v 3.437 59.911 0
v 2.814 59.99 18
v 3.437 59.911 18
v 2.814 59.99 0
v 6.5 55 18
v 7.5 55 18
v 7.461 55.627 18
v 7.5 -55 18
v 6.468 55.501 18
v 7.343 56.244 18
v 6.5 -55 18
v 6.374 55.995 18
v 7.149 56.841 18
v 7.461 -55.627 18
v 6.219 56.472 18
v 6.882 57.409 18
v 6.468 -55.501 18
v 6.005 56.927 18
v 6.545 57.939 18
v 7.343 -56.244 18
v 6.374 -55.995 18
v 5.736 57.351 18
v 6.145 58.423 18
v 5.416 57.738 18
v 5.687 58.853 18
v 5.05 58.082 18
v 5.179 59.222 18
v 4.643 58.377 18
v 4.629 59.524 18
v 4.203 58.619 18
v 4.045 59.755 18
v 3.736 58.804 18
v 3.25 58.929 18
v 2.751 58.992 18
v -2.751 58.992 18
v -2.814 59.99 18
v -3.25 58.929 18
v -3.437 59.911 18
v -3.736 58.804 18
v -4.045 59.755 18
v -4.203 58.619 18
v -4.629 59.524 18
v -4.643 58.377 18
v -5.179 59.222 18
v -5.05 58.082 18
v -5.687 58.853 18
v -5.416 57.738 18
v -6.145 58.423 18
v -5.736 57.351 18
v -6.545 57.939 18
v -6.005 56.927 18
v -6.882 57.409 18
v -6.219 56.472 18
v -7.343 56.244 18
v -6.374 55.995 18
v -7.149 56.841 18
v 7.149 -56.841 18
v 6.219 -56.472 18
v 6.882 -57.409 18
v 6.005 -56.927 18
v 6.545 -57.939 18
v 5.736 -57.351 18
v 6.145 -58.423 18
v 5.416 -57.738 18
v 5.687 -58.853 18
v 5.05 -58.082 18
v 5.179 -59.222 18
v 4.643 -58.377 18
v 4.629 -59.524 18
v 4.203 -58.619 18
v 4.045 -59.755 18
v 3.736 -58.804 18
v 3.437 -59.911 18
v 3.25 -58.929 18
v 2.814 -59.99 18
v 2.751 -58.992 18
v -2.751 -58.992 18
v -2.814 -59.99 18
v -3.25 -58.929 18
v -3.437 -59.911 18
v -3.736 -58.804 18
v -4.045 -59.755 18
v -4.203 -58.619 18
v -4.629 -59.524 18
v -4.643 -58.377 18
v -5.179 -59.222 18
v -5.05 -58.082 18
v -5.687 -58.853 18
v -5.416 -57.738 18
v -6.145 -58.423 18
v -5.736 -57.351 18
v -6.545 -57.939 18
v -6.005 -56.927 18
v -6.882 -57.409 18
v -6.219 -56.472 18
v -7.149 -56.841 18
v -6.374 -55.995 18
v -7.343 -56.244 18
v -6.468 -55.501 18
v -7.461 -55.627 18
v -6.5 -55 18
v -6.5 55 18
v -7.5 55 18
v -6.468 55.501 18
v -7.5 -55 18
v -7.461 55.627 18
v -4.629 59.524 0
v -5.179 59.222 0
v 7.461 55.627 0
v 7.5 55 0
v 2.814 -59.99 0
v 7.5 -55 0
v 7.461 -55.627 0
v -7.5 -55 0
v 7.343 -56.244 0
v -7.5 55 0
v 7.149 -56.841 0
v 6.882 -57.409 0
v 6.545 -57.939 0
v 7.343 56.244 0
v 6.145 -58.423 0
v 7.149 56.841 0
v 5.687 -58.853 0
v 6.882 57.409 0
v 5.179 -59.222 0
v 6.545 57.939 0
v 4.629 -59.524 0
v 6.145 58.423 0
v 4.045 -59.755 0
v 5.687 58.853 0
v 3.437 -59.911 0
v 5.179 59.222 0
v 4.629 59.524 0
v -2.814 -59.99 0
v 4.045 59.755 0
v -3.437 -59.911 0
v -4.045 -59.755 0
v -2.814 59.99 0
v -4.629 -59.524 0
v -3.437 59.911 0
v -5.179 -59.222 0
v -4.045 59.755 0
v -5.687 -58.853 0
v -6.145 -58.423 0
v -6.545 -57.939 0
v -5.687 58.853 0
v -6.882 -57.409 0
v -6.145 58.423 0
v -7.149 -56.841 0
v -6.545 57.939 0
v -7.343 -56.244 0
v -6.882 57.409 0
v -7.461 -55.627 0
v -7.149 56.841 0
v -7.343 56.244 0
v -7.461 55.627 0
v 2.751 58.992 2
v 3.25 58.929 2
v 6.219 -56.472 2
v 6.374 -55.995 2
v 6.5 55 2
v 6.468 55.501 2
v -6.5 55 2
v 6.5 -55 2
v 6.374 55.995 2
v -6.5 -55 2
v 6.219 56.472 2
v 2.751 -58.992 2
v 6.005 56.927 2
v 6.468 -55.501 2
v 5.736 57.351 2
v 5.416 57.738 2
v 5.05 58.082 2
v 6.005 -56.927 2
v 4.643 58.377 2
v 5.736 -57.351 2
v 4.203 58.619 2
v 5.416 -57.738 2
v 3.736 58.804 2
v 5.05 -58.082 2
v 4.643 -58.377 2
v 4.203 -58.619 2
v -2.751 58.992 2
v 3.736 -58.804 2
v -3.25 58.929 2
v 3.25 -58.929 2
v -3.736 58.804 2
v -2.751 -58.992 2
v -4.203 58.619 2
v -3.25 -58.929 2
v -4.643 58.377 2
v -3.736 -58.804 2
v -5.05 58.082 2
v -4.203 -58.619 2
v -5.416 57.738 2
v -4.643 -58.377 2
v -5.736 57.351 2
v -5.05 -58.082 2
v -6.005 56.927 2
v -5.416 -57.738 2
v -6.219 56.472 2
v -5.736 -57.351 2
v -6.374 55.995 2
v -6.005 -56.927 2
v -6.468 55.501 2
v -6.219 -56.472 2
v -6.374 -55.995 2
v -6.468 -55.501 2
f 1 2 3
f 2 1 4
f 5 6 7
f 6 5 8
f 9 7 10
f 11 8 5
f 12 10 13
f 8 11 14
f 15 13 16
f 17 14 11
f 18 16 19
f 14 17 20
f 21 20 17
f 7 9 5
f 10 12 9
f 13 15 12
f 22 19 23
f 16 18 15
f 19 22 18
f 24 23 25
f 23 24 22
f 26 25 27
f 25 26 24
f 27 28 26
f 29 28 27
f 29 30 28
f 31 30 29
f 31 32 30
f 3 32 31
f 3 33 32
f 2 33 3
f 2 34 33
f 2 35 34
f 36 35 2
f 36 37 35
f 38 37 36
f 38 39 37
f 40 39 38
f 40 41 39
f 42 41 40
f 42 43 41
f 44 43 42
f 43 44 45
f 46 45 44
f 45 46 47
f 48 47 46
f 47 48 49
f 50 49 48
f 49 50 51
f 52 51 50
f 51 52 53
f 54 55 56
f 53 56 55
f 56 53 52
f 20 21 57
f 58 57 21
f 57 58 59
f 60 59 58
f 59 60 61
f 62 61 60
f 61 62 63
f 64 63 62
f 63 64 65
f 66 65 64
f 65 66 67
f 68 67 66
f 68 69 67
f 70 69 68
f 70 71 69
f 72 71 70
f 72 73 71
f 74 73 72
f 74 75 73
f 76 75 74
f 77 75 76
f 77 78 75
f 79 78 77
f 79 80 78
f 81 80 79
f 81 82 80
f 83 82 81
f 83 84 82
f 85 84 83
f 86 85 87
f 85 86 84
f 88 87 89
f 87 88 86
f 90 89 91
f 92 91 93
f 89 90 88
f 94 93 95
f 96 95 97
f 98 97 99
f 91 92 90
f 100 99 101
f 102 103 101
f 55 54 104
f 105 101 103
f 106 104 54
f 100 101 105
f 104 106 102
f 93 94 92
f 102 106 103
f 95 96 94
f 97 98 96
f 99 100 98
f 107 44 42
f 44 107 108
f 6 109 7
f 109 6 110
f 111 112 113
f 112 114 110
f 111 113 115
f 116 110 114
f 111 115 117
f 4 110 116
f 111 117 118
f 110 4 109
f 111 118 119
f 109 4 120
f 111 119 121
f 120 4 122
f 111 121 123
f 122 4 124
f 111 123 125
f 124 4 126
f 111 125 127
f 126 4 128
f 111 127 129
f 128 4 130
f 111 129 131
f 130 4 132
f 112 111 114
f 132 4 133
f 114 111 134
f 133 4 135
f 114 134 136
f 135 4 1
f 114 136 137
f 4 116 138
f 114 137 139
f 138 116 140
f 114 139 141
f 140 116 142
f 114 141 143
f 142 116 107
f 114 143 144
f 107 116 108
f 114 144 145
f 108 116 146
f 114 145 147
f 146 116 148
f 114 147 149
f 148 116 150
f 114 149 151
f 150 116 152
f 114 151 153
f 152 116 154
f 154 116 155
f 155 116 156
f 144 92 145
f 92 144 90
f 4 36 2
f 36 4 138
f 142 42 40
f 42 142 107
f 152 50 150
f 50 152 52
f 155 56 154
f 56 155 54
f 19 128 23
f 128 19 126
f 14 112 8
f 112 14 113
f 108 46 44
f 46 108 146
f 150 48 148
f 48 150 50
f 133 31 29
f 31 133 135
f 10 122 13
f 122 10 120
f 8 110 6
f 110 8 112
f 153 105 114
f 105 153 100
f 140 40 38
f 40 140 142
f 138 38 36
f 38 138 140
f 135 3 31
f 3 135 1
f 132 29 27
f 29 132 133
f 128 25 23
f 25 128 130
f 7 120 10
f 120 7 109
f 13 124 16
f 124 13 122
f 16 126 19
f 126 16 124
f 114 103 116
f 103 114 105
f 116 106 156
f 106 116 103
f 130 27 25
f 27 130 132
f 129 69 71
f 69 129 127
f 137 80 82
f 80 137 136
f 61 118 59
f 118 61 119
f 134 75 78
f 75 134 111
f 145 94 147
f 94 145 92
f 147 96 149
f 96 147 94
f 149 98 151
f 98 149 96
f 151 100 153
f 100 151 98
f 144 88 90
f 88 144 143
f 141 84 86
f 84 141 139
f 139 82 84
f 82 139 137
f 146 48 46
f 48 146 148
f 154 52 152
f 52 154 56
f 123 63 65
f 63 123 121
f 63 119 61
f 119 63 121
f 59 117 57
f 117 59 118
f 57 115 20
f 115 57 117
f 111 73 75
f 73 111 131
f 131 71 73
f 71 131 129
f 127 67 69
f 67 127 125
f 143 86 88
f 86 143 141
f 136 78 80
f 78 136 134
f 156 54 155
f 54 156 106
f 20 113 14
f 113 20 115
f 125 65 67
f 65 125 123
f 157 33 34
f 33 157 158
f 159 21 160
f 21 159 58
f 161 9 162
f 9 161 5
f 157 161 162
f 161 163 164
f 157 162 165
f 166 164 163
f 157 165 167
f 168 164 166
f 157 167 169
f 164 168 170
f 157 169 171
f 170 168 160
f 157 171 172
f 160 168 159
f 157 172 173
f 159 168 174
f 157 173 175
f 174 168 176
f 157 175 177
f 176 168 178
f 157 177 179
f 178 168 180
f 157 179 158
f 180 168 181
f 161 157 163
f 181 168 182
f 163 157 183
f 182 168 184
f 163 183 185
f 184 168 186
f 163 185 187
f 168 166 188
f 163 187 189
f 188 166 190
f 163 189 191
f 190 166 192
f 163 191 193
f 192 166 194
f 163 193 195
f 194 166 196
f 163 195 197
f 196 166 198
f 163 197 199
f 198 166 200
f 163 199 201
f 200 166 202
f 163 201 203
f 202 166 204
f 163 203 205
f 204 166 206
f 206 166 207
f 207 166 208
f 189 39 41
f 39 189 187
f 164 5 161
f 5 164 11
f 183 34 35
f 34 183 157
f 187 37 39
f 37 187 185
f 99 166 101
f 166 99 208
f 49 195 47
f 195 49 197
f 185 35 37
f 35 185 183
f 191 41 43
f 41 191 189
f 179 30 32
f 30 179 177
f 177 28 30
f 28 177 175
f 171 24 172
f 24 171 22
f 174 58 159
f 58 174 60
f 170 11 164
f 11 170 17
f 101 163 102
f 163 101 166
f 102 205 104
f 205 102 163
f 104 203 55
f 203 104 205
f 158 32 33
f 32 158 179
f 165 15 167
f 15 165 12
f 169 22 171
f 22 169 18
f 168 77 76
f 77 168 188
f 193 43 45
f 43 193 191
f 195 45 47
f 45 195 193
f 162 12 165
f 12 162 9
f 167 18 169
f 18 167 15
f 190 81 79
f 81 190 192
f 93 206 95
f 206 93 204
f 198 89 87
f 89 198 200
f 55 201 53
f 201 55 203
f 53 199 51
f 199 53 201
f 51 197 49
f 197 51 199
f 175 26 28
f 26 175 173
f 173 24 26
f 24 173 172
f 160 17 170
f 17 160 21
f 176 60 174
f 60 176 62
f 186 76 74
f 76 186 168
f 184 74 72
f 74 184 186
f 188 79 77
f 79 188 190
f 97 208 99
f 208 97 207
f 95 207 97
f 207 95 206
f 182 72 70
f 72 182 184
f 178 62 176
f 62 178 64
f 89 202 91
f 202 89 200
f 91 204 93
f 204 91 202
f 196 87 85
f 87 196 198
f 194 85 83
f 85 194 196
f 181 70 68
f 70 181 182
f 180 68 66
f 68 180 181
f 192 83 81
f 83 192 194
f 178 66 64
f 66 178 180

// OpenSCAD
$fn = 50;


difference() {
	union() {
		hull() {
			translate(v = [-2.5000000000, 55.0000000000, 0]) {
				cylinder(h = 18, r = 5);
			}
			translate(v = [2.5000000000, 55.0000000000, 0]) {
				cylinder(h = 18, r = 5);
			}
			translate(v = [-2.5000000000, -55.0000000000, 0]) {
				cylinder(h = 18, r = 5);
			}
			translate(v = [2.5000000000, -55.0000000000, 0]) {
				cylinder(h = 18, r = 5);
			}
		}
	}
	union() {
		translate(v = [0, 0, 2]) {
			hull() {
				translate(v = [-2.5000000000, 55.0000000000, 0]) {
					cylinder(h = 16, r = 4);
				}
				translate(v = [2.5000000000, 55.0000000000, 0]) {
					cylinder(h = 16, r = 4);
				}
				translate(v = [-2.5000000000, -55.0000000000, 0]) {
					cylinder(h = 16, r = 4);
				}
				translate(v = [2.5000000000, -55.0000000000, 0]) {
					cylinder(h = 16, r = 4);
				}
			}
		}
	}
}
